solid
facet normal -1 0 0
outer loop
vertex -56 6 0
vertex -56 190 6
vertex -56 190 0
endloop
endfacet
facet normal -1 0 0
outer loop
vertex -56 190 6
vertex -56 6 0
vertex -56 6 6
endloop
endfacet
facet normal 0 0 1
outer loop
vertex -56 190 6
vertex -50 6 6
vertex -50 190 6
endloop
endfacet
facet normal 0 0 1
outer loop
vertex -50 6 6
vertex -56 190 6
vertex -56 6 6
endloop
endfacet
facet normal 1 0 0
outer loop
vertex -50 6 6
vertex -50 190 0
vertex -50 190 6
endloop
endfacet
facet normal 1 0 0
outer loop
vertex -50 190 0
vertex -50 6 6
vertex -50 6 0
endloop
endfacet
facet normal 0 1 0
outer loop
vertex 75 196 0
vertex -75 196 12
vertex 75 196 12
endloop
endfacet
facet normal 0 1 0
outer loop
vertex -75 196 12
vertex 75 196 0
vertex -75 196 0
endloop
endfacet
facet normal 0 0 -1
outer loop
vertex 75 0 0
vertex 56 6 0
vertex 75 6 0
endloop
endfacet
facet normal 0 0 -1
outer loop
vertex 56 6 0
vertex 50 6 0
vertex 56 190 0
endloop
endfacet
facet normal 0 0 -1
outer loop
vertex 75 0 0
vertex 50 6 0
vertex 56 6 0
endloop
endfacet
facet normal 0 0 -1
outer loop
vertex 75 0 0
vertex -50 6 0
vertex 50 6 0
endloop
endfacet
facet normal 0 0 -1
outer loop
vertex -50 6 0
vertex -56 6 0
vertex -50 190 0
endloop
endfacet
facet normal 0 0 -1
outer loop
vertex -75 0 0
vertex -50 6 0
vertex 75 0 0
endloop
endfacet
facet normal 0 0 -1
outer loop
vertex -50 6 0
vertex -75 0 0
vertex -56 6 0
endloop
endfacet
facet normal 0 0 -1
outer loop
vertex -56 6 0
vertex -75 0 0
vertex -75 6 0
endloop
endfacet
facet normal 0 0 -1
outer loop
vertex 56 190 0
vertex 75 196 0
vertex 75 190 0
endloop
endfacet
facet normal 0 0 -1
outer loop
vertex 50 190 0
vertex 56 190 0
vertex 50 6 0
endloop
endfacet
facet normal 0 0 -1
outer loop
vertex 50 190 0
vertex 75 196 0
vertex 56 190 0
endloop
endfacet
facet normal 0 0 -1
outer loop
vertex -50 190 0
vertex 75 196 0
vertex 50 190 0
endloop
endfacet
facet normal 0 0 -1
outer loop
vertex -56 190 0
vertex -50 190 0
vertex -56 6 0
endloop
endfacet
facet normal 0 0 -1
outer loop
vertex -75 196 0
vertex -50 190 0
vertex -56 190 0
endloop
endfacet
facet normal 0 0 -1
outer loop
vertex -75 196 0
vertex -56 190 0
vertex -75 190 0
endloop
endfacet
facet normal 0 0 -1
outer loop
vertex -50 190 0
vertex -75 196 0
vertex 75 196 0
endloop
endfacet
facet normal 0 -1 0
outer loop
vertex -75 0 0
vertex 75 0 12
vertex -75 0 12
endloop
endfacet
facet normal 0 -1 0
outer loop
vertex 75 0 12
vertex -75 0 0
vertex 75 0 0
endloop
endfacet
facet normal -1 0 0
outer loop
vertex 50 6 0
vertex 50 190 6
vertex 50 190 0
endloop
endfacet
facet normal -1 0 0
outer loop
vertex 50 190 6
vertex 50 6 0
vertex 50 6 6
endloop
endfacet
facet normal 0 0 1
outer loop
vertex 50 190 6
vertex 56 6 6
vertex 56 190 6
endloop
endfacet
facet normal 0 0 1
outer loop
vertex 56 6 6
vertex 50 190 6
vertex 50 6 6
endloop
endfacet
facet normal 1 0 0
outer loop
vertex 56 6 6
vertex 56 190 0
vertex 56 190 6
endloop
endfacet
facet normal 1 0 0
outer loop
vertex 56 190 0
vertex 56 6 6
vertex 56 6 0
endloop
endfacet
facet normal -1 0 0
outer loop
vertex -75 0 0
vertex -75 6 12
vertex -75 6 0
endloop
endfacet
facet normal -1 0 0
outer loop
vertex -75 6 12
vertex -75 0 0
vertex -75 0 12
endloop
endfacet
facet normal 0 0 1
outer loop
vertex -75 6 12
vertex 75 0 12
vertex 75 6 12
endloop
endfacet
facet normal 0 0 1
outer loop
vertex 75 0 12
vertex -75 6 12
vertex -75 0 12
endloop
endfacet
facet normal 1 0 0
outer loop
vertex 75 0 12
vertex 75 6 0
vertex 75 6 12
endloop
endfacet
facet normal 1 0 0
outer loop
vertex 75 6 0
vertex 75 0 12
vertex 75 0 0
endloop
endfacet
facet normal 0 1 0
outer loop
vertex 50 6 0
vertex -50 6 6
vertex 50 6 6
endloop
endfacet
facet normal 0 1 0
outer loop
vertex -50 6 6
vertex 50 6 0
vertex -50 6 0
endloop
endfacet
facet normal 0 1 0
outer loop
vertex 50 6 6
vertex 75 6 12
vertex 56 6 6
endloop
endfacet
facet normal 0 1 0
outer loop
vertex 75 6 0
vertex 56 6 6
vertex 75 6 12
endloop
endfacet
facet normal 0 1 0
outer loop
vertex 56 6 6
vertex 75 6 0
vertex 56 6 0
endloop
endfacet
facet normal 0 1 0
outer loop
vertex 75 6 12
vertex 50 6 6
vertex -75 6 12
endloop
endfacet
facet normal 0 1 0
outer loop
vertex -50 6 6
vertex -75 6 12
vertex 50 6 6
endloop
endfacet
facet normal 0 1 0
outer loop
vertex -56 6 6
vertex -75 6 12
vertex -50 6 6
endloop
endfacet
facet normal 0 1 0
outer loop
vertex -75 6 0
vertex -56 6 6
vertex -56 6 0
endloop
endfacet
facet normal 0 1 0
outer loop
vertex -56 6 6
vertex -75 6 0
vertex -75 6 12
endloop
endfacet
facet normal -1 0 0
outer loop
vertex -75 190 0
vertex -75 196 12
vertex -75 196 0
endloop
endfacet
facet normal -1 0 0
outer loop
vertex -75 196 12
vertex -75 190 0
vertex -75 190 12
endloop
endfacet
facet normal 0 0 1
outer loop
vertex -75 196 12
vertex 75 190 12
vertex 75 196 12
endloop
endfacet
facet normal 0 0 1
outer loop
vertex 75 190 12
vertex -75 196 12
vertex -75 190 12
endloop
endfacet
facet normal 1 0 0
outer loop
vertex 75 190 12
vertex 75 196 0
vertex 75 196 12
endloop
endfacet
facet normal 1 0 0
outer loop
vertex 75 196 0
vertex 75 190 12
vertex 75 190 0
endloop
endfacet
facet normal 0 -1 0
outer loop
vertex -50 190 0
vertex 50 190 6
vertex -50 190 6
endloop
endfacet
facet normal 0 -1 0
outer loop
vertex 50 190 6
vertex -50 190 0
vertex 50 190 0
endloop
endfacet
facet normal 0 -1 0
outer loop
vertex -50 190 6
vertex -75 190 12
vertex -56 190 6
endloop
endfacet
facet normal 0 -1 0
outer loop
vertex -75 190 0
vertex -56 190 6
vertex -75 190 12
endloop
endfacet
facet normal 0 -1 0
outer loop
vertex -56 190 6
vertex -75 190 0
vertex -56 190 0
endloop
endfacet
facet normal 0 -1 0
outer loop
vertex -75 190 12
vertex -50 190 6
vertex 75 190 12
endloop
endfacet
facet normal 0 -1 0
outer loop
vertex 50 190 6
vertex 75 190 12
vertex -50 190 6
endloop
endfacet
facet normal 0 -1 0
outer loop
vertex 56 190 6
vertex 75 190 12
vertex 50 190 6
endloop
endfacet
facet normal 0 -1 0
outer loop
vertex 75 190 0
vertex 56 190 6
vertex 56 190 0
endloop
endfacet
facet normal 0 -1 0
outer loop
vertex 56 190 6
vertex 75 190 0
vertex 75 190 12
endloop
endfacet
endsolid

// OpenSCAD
thick = 6;

translate ([-(50 + thick), 0, 0])
  cube ([thick, 196, thick]);
translate ([50, 0, 0])
  cube ([thick, 196, thick]);
translate ([-75, 0, 0])
  cube ([150, thick, thick * 2]);
translate ([-75, 196 - thick, 0])
  cube ([150, thick, thick * 2]);
  
